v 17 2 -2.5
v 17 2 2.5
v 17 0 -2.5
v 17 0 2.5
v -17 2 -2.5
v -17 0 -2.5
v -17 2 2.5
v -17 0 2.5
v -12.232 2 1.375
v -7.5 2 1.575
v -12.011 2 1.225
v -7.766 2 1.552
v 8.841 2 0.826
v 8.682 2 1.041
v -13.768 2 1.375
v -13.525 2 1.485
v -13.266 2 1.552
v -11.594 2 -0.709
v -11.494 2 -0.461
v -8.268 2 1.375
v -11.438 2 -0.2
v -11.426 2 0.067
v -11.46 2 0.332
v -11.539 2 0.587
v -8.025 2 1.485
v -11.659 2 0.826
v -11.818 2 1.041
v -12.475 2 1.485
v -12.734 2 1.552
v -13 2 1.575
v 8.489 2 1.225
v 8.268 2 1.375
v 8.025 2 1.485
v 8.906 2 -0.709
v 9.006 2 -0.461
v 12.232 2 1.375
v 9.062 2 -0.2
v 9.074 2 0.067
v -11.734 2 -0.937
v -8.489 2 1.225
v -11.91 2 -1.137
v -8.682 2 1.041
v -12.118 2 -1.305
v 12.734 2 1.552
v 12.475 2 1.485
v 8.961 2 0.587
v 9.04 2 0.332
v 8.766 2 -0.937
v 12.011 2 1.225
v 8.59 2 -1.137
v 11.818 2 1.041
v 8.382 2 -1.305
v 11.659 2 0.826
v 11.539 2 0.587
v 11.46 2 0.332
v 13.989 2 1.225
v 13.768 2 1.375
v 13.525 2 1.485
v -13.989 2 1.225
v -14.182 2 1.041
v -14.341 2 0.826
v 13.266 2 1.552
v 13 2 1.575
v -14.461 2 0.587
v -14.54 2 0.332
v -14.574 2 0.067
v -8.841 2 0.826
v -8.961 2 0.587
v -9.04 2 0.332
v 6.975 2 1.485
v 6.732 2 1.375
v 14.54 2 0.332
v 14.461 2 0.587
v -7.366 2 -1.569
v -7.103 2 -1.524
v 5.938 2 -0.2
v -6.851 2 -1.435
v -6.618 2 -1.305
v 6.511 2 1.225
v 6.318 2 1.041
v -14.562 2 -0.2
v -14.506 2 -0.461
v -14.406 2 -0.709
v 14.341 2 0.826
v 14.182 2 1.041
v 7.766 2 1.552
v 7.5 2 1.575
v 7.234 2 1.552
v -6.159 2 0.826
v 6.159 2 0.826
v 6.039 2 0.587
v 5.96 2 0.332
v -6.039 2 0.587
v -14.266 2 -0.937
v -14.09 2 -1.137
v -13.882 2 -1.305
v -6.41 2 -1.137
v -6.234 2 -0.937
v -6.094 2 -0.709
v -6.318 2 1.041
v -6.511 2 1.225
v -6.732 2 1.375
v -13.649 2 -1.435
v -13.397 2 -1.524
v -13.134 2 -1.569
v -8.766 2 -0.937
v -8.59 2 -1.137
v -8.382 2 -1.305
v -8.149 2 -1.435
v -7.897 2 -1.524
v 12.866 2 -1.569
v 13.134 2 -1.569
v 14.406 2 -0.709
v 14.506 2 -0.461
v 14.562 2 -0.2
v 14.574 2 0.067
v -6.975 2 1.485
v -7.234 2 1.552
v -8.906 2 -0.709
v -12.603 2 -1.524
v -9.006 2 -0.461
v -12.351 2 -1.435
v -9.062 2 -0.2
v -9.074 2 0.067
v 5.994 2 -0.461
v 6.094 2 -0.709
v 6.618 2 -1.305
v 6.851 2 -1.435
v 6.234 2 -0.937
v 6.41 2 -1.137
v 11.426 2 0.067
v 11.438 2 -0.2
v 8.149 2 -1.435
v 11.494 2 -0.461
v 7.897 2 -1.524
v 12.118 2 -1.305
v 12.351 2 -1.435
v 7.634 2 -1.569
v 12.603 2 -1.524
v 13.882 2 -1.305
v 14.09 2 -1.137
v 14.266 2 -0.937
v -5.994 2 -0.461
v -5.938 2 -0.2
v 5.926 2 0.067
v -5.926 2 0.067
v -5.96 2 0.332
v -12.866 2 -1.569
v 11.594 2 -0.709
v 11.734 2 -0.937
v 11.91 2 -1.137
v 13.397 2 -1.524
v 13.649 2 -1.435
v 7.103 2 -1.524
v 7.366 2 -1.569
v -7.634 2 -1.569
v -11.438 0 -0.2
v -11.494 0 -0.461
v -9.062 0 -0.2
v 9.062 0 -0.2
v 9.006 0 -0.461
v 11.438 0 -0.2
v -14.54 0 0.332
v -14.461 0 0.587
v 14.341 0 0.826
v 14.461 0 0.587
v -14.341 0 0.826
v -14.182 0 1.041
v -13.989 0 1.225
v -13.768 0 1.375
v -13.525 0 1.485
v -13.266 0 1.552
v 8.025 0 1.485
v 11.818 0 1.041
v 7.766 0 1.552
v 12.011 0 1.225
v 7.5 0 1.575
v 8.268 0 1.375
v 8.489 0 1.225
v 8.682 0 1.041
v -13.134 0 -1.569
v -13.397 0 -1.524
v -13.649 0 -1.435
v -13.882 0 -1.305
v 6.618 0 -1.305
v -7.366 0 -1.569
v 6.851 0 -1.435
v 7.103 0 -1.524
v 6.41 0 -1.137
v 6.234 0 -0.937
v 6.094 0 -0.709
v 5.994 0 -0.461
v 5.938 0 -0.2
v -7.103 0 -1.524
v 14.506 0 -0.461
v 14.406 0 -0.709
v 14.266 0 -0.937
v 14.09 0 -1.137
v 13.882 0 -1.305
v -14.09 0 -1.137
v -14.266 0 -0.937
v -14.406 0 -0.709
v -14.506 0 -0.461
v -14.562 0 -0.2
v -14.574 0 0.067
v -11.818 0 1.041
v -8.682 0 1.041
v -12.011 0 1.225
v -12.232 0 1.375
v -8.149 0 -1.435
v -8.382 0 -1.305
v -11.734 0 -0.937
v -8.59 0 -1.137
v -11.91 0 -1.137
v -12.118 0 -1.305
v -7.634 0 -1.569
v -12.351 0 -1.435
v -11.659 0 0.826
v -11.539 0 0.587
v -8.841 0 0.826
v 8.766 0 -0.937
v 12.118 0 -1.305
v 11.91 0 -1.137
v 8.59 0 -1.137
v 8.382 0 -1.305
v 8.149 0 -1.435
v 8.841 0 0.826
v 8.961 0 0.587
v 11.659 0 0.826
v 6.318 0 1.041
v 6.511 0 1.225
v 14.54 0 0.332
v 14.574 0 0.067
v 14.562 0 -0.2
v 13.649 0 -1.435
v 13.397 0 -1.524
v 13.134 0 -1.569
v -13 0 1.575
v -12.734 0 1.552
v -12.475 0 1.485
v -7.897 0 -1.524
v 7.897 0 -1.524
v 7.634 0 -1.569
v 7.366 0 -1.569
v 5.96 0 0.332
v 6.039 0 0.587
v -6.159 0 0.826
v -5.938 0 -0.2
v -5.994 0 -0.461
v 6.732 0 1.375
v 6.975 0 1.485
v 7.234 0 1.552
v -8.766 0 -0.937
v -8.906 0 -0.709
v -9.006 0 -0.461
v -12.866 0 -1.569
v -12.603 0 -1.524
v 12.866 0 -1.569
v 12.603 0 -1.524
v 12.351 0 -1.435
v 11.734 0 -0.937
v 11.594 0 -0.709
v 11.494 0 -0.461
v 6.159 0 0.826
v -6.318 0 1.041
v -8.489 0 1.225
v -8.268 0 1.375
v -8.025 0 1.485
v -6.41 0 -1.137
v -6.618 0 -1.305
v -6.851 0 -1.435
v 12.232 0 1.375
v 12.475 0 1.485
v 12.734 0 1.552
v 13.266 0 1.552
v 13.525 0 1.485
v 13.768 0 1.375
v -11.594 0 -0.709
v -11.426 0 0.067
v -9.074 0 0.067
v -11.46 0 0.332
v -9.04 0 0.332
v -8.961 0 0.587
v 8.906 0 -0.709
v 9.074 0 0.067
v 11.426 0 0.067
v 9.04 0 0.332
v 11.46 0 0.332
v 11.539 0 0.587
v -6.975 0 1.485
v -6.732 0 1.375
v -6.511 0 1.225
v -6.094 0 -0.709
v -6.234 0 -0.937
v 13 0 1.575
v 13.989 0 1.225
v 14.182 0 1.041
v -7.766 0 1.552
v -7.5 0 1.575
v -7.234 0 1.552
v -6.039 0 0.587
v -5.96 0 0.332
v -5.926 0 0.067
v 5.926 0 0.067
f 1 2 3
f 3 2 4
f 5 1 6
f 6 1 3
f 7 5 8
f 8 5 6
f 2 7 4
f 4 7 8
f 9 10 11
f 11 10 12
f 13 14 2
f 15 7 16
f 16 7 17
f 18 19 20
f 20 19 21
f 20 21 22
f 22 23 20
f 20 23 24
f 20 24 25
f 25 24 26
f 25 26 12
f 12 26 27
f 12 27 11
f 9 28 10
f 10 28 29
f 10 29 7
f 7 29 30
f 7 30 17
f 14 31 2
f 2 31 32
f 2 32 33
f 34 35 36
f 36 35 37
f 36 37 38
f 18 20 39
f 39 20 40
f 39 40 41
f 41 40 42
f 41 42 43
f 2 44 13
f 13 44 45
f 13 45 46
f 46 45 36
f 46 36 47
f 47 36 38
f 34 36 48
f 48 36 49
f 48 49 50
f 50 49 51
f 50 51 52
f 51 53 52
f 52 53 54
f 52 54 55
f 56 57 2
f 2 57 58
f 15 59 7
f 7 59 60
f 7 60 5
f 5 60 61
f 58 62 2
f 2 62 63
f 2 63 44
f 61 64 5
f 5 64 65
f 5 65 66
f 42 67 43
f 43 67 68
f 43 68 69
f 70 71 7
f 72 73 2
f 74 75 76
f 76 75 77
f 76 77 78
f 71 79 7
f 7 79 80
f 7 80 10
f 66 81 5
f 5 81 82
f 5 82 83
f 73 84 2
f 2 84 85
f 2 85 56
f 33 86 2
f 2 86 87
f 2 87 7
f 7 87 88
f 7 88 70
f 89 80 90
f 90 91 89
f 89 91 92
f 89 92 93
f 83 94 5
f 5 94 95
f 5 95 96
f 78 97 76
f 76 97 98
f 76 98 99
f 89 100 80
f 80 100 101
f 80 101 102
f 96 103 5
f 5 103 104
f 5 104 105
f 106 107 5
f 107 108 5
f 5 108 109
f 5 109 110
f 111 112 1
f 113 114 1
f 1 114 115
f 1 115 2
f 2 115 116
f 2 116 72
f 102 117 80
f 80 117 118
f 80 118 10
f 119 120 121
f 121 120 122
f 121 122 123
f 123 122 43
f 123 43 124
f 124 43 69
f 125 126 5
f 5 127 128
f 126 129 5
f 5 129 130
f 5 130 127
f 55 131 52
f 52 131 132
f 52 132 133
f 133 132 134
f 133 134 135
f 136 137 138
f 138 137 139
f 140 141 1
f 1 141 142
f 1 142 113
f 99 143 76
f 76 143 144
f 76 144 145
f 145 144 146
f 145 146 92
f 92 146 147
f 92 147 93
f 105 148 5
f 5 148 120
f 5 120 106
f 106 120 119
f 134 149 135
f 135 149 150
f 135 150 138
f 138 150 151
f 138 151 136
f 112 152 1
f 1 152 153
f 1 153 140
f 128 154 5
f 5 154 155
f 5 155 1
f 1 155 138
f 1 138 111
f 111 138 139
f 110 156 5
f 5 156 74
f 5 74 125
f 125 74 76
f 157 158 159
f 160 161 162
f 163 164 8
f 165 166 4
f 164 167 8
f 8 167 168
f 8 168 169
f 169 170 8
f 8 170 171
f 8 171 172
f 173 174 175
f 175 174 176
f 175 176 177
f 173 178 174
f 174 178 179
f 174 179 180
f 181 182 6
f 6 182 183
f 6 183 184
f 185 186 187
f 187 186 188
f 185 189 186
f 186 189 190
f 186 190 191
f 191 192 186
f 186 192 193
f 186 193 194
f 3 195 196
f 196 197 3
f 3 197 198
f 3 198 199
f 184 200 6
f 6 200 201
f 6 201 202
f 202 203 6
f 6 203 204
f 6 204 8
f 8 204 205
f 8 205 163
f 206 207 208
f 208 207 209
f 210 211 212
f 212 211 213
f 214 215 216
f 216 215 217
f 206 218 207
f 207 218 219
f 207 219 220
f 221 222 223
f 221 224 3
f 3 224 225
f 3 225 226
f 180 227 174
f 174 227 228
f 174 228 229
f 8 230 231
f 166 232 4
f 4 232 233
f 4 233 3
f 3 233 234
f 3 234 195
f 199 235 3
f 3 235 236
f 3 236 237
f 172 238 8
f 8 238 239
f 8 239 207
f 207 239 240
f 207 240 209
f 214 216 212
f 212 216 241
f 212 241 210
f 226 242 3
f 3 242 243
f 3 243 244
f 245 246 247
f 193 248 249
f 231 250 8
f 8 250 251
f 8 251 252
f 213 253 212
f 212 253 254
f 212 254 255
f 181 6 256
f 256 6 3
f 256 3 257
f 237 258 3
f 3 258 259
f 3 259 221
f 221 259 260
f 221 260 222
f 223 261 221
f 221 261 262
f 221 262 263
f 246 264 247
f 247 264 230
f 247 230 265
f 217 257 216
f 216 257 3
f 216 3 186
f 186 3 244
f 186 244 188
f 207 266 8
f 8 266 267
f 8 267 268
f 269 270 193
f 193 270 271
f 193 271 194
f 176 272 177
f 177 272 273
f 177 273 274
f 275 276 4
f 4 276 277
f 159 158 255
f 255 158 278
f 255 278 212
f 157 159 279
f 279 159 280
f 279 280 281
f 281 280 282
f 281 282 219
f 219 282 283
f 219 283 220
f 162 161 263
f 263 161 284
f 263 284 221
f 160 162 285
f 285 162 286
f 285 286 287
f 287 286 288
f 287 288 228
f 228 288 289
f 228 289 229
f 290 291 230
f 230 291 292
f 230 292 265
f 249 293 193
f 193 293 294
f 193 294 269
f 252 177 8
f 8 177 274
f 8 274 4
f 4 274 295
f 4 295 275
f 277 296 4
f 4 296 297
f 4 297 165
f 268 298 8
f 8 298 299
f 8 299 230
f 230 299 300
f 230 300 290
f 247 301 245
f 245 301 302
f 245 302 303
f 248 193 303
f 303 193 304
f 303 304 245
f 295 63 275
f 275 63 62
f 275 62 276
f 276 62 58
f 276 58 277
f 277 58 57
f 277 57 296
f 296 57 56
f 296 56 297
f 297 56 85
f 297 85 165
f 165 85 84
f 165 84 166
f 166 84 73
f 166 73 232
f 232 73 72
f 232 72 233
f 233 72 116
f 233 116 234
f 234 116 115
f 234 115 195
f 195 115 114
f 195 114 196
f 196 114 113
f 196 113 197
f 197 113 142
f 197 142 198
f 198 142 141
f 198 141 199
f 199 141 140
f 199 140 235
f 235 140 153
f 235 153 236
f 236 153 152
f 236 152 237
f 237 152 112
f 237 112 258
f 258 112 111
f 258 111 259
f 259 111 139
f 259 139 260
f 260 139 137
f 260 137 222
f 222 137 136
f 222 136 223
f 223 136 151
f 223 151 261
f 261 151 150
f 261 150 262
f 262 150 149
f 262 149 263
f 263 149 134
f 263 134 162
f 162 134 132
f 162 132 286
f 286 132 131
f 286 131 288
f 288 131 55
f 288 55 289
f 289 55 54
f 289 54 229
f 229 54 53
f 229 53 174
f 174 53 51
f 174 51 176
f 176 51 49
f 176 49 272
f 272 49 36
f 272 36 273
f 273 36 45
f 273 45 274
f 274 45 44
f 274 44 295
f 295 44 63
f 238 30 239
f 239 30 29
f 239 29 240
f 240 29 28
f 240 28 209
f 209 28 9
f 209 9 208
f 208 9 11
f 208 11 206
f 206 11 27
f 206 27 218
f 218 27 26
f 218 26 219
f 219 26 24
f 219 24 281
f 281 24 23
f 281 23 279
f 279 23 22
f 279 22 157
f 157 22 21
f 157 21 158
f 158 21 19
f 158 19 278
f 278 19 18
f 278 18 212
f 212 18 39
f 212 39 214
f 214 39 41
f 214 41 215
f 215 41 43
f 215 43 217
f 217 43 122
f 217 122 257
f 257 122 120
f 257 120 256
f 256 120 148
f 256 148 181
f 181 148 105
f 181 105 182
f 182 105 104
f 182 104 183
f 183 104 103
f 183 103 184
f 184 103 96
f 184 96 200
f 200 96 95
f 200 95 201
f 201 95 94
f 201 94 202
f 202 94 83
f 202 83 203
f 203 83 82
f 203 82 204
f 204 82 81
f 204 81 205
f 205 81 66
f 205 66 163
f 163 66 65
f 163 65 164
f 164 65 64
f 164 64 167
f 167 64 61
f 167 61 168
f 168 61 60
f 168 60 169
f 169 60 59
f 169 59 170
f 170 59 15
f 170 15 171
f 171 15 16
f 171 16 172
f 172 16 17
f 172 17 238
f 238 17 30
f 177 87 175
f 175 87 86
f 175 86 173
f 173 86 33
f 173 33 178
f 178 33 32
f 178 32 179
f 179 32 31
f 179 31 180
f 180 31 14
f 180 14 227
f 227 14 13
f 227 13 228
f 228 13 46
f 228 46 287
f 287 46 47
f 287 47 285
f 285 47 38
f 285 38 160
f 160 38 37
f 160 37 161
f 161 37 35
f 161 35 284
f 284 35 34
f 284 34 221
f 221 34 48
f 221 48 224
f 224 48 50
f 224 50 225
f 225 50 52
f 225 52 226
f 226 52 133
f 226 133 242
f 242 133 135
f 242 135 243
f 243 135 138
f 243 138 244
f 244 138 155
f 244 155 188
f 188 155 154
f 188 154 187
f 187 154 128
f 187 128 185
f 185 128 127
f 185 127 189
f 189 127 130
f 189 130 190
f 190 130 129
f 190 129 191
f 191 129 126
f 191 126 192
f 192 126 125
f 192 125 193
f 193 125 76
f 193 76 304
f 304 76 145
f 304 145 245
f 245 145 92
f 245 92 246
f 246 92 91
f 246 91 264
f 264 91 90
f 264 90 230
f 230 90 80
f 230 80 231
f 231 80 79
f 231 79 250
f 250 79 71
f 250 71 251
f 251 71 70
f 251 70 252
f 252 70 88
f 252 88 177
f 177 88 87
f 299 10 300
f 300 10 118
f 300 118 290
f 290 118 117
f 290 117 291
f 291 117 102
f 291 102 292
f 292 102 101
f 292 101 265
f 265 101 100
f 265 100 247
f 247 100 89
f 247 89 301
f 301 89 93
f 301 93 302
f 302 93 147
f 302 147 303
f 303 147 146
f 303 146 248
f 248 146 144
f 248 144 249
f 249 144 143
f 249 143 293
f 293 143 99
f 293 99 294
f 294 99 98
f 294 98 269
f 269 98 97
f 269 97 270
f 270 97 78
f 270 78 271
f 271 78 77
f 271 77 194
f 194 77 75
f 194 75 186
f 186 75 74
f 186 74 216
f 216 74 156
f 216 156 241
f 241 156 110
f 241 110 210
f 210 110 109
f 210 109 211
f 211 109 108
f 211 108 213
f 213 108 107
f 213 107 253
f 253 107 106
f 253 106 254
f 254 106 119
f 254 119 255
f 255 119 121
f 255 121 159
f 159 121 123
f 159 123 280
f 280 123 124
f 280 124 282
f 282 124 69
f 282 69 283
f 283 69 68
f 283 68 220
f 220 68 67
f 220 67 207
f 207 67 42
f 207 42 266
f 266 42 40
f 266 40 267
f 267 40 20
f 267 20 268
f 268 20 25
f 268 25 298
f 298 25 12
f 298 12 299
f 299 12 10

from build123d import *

# Parameters (mm, degrees)
SKETCH1_W           = 34
SKETCH1_H           = 5
BOSS_EXTRUDE2_DEPTH = 2
SKETCH4_R           = 1.575
CUT_EXTRUDE3_DEPTH  = 2
SKETCH5_R           = 1.575
CUT_EXTRUDE4_DEPTH  = 2


with BuildPart() as part:
    # Sketch1 → Boss-Extrude2 (new body)
    with BuildSketch(Plane(origin=(0, 0, 0), x_dir=(1, 0, 0), z_dir=(0, 1, 0))):
        Rectangle(SKETCH1_W, SKETCH1_H)
    extrude(amount=BOSS_EXTRUDE2_DEPTH)

    # Sketch4 → Cut-Extrude3 (cut)
    with BuildSketch(Plane(origin=(0, 2, 0), x_dir=(1, 0, 0), z_dir=(0, 1, 0))):
        with Locations((-13, 0)):
            Circle(SKETCH4_R)
        with Locations((13, 0)):
            Circle(SKETCH4_R)
    extrude(amount=-CUT_EXTRUDE3_DEPTH, mode=Mode.SUBTRACT)

    # Sketch5 → Cut-Extrude4 (cut)
    with BuildSketch(Plane(origin=(0, 2, 0), x_dir=(1, 0, 0), z_dir=(0, 1, 0))):
        with Locations((-7.5, 0)):
            Circle(SKETCH5_R)
        with Locations((7.5, 0)):
            Circle(SKETCH5_R)
    extrude(amount=-CUT_EXTRUDE4_DEPTH, mode=Mode.SUBTRACT)


solid = part.part
